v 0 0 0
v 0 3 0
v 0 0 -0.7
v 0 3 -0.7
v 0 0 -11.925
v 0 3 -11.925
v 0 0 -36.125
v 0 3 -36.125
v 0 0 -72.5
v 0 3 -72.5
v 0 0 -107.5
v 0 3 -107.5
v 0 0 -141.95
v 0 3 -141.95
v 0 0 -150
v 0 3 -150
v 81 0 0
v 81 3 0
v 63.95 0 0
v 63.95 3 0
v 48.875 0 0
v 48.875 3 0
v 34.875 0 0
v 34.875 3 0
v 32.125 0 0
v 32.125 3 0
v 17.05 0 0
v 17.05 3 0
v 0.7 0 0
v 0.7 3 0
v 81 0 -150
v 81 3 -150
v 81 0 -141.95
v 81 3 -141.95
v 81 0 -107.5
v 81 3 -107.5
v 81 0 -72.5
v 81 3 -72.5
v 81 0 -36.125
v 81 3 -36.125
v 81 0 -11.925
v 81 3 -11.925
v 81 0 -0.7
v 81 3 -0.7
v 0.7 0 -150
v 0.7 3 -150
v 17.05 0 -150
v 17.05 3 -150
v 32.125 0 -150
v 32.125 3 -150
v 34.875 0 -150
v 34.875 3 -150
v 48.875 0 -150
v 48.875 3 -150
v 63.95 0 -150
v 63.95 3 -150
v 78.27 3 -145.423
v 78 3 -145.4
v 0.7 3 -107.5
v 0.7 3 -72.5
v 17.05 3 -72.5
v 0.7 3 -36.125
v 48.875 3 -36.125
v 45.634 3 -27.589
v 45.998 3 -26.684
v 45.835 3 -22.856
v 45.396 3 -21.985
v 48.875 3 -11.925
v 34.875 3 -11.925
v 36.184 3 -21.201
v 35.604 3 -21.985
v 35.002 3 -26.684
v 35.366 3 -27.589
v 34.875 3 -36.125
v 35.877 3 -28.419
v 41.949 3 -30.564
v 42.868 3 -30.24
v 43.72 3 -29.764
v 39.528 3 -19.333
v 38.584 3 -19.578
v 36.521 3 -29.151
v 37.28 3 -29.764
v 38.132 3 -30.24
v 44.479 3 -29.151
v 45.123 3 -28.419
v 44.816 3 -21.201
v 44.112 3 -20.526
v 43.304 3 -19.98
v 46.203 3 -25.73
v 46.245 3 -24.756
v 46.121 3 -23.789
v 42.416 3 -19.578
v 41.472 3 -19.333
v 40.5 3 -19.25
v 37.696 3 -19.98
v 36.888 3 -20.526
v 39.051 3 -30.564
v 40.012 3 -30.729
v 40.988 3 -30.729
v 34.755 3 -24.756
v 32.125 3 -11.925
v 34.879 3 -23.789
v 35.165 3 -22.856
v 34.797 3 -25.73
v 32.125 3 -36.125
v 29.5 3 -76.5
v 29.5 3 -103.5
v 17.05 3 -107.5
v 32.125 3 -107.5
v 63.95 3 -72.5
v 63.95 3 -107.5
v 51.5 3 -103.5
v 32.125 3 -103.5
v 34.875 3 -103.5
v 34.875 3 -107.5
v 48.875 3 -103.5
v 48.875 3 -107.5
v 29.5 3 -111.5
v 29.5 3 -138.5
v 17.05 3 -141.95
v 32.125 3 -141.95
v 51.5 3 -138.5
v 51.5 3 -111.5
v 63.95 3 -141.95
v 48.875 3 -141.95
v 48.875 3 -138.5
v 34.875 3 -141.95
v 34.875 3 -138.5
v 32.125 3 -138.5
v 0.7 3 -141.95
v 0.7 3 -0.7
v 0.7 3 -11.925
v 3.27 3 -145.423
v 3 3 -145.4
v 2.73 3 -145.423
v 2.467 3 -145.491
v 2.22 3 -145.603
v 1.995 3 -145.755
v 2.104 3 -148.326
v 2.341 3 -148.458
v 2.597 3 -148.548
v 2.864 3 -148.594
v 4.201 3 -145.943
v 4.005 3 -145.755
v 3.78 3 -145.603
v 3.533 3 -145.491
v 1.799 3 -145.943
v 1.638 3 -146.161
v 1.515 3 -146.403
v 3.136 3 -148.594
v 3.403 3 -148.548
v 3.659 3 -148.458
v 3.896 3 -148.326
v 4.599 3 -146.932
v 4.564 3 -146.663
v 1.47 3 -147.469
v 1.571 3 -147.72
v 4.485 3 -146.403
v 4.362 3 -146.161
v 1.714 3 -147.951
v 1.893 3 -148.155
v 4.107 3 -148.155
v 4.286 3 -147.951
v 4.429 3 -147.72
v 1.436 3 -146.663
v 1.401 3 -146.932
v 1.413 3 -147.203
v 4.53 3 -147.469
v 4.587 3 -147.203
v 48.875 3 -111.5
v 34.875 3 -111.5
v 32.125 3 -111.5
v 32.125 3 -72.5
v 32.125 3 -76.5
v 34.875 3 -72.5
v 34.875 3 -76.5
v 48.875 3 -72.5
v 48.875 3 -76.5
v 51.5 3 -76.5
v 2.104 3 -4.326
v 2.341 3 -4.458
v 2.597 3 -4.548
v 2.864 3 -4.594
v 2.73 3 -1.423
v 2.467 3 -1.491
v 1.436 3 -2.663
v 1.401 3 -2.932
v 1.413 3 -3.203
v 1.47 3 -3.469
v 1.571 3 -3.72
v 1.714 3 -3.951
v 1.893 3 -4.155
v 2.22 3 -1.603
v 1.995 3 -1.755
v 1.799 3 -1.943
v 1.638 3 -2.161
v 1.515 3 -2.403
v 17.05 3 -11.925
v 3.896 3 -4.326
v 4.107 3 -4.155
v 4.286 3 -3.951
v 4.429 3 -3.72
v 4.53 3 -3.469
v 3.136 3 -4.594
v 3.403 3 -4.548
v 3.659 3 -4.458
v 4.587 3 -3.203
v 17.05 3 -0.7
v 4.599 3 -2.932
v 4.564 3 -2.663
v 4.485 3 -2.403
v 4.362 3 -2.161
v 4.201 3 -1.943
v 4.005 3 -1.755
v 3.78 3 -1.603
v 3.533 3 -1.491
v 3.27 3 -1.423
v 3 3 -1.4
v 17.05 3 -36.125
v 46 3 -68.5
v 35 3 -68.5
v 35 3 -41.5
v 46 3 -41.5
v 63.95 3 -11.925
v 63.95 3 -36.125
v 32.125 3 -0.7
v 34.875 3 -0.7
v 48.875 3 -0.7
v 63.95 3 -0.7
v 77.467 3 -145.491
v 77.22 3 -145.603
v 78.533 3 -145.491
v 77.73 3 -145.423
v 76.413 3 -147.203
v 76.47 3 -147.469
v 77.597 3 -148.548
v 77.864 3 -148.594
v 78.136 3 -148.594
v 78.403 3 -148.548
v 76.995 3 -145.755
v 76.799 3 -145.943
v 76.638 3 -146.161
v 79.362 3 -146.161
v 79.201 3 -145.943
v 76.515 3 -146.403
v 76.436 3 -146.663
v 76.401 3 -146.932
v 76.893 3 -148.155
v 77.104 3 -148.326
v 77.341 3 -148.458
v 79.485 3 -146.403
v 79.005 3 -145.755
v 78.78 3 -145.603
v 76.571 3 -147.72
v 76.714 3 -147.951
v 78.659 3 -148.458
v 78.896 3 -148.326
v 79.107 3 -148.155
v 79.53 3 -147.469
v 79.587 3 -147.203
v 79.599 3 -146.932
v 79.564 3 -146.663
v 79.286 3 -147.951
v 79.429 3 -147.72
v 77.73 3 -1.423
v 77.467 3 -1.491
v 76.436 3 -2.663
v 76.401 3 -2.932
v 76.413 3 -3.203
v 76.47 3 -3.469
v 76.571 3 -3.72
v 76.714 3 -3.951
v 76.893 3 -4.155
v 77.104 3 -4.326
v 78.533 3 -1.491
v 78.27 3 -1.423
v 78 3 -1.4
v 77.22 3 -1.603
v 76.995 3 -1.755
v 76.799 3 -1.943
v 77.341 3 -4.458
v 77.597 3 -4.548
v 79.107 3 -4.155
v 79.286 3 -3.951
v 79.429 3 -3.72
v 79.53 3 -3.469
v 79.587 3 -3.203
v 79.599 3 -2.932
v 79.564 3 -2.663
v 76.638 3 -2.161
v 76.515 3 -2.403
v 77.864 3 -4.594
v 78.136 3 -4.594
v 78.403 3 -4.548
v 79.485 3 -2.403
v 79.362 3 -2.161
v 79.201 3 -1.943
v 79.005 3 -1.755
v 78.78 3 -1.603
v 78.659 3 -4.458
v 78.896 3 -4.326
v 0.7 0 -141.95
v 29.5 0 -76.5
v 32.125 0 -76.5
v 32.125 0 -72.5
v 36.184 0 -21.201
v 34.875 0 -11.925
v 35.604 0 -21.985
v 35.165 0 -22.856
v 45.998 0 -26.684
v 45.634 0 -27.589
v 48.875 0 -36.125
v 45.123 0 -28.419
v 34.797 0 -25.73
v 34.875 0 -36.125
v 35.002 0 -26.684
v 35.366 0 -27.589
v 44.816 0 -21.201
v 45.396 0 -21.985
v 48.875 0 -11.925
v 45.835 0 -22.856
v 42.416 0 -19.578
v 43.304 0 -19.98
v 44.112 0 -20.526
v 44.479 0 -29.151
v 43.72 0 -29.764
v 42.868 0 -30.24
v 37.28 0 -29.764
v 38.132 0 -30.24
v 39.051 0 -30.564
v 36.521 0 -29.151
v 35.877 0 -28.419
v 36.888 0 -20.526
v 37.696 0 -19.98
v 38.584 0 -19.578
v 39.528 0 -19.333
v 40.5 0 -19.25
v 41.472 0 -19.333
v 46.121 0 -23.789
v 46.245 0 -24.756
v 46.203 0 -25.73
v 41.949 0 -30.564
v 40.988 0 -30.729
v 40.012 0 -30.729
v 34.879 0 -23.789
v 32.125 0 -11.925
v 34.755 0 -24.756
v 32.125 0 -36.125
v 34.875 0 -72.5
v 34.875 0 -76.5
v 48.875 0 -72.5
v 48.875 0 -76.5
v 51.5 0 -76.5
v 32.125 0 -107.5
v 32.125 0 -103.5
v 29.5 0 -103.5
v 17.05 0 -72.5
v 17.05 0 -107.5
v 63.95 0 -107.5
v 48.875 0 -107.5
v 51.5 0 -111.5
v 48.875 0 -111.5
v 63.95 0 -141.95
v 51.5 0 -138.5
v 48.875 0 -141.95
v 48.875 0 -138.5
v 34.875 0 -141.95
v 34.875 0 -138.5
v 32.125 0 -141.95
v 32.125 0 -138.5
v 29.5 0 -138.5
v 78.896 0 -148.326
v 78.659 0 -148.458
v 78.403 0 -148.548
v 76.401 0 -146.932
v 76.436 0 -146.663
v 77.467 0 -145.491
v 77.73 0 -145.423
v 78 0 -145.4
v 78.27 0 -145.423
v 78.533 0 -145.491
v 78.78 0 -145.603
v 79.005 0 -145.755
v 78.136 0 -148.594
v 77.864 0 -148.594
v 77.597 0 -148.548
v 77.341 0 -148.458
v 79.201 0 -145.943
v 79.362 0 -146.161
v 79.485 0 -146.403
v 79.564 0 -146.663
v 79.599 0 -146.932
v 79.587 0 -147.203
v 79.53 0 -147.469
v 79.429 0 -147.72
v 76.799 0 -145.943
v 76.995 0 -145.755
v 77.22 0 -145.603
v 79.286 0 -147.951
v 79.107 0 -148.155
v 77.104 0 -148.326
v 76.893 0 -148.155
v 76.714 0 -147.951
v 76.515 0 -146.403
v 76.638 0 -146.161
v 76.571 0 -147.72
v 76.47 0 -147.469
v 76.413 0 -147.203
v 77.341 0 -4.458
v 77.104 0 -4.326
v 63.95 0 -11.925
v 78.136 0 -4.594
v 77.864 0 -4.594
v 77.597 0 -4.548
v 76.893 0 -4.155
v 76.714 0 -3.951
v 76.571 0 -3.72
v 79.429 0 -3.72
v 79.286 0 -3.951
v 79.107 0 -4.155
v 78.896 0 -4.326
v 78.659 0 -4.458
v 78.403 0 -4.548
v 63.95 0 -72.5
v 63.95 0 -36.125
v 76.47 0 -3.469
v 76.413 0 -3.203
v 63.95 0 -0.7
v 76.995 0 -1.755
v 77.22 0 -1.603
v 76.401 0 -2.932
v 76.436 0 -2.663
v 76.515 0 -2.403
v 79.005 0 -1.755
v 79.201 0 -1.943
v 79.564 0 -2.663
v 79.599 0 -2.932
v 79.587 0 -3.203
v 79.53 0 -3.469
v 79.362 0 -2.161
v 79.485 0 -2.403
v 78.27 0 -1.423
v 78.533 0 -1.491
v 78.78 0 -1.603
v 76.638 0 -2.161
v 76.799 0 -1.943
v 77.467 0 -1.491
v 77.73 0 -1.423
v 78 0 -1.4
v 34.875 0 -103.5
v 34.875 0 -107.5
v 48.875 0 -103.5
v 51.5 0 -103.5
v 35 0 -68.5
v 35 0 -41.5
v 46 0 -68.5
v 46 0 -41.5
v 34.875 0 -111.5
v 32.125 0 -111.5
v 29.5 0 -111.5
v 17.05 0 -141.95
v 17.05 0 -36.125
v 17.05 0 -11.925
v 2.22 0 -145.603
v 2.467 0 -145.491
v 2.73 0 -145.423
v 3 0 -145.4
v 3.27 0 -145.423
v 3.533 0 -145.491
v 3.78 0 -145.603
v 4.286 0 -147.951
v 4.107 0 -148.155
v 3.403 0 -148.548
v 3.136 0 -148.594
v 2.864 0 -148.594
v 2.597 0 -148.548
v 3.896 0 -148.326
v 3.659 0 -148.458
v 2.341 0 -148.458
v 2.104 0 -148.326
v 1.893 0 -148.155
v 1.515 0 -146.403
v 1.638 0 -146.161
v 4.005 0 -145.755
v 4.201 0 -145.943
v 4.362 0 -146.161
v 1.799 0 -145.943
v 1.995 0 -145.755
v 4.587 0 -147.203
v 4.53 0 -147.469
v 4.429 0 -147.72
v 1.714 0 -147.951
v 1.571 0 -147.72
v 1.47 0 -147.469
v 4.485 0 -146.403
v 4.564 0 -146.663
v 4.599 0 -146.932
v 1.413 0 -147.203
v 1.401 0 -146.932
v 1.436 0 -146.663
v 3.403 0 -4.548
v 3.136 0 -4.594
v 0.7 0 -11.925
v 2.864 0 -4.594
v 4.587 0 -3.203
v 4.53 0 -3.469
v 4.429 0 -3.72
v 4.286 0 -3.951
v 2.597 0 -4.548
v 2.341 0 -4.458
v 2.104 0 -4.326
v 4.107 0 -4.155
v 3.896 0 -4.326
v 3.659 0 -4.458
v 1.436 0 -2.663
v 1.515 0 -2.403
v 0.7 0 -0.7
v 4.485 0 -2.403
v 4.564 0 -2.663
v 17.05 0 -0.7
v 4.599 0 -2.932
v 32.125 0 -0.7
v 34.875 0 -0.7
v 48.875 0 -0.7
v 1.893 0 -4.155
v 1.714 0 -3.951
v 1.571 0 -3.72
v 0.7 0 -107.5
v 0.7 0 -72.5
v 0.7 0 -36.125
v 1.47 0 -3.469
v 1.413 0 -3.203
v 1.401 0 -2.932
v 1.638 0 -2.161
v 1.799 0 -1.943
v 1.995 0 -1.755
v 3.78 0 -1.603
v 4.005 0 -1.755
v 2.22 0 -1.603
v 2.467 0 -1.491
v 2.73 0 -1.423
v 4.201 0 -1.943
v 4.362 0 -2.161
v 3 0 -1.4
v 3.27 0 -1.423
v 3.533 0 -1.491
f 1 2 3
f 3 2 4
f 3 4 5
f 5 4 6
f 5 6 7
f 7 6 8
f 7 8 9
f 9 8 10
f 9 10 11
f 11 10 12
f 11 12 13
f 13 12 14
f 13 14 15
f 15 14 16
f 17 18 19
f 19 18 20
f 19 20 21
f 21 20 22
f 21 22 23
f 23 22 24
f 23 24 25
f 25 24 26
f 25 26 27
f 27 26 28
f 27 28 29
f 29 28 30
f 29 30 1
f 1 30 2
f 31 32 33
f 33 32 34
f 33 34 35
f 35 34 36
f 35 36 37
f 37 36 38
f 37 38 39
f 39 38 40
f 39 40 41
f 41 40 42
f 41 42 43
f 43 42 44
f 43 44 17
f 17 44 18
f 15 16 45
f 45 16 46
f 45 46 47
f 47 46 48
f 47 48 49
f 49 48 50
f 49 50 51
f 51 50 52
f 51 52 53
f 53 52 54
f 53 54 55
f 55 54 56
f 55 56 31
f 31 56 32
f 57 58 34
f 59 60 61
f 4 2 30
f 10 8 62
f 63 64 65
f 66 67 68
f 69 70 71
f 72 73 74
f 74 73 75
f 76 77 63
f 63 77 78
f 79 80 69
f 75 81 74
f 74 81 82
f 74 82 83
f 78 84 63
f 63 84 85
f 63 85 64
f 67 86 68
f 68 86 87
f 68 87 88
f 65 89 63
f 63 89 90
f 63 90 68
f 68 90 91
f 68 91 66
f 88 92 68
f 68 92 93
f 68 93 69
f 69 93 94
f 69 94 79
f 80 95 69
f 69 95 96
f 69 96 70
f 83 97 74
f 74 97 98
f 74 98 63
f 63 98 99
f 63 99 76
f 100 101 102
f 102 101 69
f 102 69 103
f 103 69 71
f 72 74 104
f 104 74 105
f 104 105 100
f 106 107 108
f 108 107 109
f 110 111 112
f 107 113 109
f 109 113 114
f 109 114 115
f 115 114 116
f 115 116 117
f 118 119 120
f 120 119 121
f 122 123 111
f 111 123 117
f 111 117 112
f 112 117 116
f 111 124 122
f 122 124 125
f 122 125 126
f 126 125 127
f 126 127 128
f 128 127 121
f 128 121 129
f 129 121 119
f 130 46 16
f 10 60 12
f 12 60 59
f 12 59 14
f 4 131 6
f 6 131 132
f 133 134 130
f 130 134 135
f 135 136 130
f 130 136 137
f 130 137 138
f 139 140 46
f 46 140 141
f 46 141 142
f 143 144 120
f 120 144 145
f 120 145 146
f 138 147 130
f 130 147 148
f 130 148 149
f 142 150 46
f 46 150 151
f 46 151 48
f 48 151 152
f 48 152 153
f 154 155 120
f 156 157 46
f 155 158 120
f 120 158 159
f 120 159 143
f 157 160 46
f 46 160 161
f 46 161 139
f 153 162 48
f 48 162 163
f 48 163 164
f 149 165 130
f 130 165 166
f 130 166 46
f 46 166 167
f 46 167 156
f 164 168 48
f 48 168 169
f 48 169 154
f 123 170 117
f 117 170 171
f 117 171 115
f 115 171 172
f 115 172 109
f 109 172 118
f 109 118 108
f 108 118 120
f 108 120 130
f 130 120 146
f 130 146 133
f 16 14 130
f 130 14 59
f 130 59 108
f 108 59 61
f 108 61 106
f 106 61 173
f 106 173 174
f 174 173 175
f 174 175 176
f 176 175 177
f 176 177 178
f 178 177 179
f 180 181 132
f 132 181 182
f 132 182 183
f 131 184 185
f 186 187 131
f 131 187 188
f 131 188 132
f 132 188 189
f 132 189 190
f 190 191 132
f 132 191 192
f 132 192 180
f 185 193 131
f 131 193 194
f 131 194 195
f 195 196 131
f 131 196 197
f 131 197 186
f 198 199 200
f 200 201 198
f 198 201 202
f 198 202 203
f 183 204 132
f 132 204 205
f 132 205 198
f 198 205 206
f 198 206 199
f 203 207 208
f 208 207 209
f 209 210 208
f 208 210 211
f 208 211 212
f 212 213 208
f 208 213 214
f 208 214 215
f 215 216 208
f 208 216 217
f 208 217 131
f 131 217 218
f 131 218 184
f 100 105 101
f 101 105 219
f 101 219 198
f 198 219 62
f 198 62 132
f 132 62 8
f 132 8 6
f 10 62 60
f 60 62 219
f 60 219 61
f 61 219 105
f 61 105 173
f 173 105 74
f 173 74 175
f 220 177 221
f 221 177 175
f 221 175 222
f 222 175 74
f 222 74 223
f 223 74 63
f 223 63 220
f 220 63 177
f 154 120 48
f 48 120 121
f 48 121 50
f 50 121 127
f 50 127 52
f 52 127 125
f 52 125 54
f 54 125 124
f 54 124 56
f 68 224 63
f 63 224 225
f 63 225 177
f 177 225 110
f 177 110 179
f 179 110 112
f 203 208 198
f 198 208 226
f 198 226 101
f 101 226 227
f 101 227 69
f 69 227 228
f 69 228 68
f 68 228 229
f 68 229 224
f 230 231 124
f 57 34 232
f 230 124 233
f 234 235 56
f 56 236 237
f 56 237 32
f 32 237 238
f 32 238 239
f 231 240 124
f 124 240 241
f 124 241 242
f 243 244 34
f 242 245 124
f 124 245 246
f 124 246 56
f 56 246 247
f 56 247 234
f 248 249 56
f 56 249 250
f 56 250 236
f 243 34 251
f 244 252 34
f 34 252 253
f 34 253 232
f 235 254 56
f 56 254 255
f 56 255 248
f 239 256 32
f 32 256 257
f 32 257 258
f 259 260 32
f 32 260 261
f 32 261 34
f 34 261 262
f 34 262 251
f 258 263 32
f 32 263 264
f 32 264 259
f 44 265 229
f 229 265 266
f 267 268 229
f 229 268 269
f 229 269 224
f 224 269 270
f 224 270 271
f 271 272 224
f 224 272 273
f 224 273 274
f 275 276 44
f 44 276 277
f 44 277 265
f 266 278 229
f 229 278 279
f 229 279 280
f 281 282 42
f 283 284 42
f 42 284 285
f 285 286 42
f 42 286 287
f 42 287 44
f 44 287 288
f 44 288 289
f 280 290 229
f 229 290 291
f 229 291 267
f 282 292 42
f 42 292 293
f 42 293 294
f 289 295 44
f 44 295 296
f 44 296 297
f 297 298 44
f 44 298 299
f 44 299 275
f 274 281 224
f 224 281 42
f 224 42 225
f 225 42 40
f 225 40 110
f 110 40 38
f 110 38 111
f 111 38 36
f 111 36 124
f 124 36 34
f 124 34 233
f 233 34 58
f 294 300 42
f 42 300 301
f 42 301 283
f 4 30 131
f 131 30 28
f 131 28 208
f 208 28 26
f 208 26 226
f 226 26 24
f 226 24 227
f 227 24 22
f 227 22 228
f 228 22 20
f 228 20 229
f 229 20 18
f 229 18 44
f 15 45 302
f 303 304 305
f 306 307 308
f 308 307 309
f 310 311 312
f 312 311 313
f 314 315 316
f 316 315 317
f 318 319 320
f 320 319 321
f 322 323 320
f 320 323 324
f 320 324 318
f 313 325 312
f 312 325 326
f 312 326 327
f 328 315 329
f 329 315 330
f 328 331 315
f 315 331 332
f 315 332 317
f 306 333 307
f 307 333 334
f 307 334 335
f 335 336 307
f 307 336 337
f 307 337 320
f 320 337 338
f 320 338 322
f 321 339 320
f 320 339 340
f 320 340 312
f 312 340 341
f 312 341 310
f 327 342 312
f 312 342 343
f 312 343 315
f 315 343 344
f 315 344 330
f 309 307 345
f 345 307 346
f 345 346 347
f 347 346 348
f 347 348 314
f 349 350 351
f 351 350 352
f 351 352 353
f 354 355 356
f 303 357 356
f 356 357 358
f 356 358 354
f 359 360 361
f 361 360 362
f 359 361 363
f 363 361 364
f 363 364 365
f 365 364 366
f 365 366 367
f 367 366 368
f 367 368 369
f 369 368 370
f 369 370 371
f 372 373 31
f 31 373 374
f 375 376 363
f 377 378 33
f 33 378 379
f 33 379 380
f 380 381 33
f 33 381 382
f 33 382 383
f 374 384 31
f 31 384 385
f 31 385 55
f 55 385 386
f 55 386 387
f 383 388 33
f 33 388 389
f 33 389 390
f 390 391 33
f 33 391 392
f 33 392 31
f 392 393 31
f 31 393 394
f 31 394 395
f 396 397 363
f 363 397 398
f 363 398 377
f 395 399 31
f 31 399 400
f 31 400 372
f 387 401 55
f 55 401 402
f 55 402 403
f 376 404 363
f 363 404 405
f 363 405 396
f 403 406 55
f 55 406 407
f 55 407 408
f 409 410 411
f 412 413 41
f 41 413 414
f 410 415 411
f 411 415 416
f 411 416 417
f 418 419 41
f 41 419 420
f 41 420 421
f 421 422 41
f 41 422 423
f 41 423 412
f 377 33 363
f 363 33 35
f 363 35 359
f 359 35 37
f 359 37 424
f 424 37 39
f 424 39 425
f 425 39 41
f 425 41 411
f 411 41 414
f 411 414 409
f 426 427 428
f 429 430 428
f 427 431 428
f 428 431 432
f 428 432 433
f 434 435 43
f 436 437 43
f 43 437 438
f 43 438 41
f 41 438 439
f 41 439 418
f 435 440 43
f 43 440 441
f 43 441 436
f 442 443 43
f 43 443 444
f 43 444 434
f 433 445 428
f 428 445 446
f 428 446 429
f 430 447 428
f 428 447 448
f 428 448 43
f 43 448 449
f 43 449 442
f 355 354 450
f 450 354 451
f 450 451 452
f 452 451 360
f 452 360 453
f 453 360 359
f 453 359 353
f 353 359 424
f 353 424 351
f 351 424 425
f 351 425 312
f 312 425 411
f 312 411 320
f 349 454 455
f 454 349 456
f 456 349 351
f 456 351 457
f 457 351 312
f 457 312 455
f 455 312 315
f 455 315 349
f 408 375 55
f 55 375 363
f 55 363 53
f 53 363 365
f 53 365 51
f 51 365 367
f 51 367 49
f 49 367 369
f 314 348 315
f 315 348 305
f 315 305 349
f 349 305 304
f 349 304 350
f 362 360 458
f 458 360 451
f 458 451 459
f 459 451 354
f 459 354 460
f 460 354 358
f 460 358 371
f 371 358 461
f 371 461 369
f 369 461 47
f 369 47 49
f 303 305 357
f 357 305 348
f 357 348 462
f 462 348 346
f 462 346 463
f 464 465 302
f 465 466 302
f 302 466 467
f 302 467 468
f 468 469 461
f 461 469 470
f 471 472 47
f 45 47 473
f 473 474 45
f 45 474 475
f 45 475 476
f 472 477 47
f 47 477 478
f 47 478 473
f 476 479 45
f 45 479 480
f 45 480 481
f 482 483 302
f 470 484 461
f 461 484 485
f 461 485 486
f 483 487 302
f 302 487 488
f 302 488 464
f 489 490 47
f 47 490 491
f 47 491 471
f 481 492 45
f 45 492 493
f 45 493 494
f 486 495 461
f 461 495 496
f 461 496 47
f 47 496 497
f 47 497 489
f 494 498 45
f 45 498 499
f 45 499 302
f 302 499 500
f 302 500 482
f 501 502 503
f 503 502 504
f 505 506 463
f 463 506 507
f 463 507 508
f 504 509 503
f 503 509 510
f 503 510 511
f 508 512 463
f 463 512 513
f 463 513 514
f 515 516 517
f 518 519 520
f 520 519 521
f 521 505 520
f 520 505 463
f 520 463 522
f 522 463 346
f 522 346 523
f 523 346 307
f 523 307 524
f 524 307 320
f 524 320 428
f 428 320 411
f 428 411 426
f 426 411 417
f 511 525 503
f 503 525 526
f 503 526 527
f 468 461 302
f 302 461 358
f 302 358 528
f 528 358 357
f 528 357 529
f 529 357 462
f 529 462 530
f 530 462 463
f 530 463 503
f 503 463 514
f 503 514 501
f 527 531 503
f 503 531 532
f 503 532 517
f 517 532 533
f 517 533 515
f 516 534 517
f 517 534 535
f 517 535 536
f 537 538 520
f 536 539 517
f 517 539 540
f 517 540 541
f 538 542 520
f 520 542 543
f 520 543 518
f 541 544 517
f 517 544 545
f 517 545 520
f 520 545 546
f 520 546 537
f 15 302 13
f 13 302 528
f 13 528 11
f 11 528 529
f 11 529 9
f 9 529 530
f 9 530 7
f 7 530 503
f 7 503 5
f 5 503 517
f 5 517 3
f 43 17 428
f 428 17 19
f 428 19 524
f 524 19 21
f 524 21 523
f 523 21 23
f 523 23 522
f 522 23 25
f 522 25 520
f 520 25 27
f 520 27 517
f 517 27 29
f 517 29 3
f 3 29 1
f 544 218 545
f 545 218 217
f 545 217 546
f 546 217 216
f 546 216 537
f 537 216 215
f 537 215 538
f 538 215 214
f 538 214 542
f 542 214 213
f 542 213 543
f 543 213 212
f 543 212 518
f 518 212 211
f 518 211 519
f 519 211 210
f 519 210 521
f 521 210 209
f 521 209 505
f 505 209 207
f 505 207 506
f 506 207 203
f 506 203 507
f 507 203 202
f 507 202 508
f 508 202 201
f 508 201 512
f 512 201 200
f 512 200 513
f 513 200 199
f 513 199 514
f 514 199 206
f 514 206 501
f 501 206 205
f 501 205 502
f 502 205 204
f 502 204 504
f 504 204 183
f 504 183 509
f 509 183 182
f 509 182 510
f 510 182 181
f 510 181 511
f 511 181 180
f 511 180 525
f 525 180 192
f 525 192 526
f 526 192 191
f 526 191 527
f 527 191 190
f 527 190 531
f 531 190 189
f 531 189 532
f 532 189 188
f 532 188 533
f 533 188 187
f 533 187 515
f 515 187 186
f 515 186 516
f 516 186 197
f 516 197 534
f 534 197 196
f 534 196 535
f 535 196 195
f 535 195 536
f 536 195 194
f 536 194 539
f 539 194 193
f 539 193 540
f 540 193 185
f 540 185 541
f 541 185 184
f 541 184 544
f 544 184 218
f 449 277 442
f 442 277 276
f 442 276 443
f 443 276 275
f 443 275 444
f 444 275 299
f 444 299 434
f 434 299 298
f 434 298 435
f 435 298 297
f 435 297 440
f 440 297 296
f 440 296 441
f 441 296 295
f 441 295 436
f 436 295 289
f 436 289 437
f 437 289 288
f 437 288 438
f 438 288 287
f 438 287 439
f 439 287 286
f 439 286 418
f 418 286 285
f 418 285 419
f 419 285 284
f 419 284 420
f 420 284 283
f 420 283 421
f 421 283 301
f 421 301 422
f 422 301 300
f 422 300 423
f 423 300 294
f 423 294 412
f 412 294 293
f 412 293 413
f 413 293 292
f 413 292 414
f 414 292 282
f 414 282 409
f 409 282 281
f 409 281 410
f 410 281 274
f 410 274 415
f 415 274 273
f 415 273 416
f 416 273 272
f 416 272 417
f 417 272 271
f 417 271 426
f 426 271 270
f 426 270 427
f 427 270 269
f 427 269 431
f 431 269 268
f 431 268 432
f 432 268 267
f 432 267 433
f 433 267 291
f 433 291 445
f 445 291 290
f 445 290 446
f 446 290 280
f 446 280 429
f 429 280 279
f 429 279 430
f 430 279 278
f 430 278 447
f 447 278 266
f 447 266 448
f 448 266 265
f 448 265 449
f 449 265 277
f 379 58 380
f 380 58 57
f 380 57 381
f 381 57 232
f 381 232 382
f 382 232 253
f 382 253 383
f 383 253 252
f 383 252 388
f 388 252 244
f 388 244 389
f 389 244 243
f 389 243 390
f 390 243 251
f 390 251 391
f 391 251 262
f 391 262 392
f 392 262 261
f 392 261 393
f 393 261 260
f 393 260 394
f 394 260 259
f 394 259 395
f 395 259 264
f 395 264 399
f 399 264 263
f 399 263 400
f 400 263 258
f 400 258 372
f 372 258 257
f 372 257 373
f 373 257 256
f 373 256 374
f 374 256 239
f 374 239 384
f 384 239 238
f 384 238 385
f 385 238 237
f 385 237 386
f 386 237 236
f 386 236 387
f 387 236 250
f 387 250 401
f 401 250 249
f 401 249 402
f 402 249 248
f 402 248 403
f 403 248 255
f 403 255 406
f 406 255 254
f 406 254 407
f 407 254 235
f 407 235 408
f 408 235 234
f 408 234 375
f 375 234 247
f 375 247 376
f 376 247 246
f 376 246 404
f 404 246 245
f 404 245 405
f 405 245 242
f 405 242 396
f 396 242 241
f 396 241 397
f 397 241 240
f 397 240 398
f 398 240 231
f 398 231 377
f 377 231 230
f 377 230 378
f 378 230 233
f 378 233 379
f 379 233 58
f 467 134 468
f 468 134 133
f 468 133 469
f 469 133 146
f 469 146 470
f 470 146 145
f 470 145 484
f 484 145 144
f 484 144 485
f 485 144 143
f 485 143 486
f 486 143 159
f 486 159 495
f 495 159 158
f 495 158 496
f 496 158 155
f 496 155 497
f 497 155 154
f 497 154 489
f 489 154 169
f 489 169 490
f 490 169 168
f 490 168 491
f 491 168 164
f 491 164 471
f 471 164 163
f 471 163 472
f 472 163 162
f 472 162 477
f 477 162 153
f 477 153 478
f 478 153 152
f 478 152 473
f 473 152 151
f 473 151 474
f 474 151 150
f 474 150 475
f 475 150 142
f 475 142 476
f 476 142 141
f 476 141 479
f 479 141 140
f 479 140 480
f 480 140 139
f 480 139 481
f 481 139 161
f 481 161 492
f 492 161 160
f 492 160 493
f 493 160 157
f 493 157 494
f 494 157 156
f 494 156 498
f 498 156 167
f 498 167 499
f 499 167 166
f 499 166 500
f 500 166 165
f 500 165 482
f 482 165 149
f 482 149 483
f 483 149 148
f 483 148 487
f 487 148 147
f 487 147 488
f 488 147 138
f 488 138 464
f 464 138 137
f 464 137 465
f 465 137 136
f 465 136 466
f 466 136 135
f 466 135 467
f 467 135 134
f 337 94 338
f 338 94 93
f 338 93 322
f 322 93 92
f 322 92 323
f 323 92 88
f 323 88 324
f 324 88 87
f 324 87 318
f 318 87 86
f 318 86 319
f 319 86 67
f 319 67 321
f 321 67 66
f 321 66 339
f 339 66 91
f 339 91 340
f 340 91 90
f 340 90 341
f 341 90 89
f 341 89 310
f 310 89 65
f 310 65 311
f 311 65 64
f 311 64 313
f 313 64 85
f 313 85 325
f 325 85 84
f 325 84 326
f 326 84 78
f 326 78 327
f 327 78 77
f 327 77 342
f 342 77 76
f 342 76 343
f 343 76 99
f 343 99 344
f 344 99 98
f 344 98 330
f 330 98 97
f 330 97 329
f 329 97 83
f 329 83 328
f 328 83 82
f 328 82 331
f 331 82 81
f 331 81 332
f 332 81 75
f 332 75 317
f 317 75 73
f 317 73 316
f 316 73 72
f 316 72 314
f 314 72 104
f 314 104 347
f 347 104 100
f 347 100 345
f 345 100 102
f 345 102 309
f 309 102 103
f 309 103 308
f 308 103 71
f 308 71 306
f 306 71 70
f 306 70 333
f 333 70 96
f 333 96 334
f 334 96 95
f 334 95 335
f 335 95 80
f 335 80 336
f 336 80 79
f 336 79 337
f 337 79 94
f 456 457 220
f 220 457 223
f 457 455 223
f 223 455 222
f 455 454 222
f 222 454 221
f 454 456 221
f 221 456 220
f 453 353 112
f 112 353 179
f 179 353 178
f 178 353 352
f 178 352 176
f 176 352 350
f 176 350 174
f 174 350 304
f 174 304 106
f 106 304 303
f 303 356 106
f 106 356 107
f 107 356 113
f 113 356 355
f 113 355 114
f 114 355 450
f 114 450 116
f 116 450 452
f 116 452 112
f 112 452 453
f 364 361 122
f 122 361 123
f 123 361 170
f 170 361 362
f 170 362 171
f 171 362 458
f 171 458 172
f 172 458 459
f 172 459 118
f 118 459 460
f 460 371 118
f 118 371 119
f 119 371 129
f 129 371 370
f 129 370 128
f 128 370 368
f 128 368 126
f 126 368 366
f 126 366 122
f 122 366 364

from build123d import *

# Parameters (mm, degrees)
SKETCH1_W            = 81
SKETCH1_H            = 150
BOSS_EXTRUDE1_DEPTH  = 3
M3_CLEARANCE_HOLE1_D = 3.2
SKETCH9_R            = 5.75
SKETCH9_W            = 22
SKETCH9_H            = 27
SKETCH9_W_2          = 11
CUT_EXTRUDE1_DEPTH   = 4


with BuildPart() as part:
    # Sketch1 → Boss-Extrude1 (new body)
    with BuildSketch(Plane(origin=(0, 0, 0), x_dir=(1, 0, 0), z_dir=(0, 1, 0))):
        with Locations((40.5, 75)):
            Rectangle(SKETCH1_W, SKETCH1_H)
    extrude(amount=BOSS_EXTRUDE1_DEPTH)

    # M3 Clearance Hole1 (through all)
    with Locations(Plane(origin=(3, 3, -147), x_dir=(0, 0, 1), z_dir=(0, 1, 0))):
        with Locations((0, 0), (0, 75), (144, 75), (144, 0)):
            Hole(M3_CLEARANCE_HOLE1_D / 2)

    # Sketch9 → Cut-Extrude1 (cut, through all)
    with BuildSketch(Plane(origin=(0, 3, 0), x_dir=(1, 0, 0), z_dir=(0, 1, 0))):
        with Locations((40.5, 25)):
            Circle(SKETCH9_R)
        with Locations((40.5, 125)):
            Rectangle(SKETCH9_W, SKETCH9_H)
        with Locations((40.5, 90)):
            Rectangle(SKETCH9_W, SKETCH9_H)
        with Locations((40.5, 55)):
            Rectangle(SKETCH9_W_2, SKETCH9_H)
    extrude(amount=-CUT_EXTRUDE1_DEPTH, mode=Mode.SUBTRACT)


solid = part.part
